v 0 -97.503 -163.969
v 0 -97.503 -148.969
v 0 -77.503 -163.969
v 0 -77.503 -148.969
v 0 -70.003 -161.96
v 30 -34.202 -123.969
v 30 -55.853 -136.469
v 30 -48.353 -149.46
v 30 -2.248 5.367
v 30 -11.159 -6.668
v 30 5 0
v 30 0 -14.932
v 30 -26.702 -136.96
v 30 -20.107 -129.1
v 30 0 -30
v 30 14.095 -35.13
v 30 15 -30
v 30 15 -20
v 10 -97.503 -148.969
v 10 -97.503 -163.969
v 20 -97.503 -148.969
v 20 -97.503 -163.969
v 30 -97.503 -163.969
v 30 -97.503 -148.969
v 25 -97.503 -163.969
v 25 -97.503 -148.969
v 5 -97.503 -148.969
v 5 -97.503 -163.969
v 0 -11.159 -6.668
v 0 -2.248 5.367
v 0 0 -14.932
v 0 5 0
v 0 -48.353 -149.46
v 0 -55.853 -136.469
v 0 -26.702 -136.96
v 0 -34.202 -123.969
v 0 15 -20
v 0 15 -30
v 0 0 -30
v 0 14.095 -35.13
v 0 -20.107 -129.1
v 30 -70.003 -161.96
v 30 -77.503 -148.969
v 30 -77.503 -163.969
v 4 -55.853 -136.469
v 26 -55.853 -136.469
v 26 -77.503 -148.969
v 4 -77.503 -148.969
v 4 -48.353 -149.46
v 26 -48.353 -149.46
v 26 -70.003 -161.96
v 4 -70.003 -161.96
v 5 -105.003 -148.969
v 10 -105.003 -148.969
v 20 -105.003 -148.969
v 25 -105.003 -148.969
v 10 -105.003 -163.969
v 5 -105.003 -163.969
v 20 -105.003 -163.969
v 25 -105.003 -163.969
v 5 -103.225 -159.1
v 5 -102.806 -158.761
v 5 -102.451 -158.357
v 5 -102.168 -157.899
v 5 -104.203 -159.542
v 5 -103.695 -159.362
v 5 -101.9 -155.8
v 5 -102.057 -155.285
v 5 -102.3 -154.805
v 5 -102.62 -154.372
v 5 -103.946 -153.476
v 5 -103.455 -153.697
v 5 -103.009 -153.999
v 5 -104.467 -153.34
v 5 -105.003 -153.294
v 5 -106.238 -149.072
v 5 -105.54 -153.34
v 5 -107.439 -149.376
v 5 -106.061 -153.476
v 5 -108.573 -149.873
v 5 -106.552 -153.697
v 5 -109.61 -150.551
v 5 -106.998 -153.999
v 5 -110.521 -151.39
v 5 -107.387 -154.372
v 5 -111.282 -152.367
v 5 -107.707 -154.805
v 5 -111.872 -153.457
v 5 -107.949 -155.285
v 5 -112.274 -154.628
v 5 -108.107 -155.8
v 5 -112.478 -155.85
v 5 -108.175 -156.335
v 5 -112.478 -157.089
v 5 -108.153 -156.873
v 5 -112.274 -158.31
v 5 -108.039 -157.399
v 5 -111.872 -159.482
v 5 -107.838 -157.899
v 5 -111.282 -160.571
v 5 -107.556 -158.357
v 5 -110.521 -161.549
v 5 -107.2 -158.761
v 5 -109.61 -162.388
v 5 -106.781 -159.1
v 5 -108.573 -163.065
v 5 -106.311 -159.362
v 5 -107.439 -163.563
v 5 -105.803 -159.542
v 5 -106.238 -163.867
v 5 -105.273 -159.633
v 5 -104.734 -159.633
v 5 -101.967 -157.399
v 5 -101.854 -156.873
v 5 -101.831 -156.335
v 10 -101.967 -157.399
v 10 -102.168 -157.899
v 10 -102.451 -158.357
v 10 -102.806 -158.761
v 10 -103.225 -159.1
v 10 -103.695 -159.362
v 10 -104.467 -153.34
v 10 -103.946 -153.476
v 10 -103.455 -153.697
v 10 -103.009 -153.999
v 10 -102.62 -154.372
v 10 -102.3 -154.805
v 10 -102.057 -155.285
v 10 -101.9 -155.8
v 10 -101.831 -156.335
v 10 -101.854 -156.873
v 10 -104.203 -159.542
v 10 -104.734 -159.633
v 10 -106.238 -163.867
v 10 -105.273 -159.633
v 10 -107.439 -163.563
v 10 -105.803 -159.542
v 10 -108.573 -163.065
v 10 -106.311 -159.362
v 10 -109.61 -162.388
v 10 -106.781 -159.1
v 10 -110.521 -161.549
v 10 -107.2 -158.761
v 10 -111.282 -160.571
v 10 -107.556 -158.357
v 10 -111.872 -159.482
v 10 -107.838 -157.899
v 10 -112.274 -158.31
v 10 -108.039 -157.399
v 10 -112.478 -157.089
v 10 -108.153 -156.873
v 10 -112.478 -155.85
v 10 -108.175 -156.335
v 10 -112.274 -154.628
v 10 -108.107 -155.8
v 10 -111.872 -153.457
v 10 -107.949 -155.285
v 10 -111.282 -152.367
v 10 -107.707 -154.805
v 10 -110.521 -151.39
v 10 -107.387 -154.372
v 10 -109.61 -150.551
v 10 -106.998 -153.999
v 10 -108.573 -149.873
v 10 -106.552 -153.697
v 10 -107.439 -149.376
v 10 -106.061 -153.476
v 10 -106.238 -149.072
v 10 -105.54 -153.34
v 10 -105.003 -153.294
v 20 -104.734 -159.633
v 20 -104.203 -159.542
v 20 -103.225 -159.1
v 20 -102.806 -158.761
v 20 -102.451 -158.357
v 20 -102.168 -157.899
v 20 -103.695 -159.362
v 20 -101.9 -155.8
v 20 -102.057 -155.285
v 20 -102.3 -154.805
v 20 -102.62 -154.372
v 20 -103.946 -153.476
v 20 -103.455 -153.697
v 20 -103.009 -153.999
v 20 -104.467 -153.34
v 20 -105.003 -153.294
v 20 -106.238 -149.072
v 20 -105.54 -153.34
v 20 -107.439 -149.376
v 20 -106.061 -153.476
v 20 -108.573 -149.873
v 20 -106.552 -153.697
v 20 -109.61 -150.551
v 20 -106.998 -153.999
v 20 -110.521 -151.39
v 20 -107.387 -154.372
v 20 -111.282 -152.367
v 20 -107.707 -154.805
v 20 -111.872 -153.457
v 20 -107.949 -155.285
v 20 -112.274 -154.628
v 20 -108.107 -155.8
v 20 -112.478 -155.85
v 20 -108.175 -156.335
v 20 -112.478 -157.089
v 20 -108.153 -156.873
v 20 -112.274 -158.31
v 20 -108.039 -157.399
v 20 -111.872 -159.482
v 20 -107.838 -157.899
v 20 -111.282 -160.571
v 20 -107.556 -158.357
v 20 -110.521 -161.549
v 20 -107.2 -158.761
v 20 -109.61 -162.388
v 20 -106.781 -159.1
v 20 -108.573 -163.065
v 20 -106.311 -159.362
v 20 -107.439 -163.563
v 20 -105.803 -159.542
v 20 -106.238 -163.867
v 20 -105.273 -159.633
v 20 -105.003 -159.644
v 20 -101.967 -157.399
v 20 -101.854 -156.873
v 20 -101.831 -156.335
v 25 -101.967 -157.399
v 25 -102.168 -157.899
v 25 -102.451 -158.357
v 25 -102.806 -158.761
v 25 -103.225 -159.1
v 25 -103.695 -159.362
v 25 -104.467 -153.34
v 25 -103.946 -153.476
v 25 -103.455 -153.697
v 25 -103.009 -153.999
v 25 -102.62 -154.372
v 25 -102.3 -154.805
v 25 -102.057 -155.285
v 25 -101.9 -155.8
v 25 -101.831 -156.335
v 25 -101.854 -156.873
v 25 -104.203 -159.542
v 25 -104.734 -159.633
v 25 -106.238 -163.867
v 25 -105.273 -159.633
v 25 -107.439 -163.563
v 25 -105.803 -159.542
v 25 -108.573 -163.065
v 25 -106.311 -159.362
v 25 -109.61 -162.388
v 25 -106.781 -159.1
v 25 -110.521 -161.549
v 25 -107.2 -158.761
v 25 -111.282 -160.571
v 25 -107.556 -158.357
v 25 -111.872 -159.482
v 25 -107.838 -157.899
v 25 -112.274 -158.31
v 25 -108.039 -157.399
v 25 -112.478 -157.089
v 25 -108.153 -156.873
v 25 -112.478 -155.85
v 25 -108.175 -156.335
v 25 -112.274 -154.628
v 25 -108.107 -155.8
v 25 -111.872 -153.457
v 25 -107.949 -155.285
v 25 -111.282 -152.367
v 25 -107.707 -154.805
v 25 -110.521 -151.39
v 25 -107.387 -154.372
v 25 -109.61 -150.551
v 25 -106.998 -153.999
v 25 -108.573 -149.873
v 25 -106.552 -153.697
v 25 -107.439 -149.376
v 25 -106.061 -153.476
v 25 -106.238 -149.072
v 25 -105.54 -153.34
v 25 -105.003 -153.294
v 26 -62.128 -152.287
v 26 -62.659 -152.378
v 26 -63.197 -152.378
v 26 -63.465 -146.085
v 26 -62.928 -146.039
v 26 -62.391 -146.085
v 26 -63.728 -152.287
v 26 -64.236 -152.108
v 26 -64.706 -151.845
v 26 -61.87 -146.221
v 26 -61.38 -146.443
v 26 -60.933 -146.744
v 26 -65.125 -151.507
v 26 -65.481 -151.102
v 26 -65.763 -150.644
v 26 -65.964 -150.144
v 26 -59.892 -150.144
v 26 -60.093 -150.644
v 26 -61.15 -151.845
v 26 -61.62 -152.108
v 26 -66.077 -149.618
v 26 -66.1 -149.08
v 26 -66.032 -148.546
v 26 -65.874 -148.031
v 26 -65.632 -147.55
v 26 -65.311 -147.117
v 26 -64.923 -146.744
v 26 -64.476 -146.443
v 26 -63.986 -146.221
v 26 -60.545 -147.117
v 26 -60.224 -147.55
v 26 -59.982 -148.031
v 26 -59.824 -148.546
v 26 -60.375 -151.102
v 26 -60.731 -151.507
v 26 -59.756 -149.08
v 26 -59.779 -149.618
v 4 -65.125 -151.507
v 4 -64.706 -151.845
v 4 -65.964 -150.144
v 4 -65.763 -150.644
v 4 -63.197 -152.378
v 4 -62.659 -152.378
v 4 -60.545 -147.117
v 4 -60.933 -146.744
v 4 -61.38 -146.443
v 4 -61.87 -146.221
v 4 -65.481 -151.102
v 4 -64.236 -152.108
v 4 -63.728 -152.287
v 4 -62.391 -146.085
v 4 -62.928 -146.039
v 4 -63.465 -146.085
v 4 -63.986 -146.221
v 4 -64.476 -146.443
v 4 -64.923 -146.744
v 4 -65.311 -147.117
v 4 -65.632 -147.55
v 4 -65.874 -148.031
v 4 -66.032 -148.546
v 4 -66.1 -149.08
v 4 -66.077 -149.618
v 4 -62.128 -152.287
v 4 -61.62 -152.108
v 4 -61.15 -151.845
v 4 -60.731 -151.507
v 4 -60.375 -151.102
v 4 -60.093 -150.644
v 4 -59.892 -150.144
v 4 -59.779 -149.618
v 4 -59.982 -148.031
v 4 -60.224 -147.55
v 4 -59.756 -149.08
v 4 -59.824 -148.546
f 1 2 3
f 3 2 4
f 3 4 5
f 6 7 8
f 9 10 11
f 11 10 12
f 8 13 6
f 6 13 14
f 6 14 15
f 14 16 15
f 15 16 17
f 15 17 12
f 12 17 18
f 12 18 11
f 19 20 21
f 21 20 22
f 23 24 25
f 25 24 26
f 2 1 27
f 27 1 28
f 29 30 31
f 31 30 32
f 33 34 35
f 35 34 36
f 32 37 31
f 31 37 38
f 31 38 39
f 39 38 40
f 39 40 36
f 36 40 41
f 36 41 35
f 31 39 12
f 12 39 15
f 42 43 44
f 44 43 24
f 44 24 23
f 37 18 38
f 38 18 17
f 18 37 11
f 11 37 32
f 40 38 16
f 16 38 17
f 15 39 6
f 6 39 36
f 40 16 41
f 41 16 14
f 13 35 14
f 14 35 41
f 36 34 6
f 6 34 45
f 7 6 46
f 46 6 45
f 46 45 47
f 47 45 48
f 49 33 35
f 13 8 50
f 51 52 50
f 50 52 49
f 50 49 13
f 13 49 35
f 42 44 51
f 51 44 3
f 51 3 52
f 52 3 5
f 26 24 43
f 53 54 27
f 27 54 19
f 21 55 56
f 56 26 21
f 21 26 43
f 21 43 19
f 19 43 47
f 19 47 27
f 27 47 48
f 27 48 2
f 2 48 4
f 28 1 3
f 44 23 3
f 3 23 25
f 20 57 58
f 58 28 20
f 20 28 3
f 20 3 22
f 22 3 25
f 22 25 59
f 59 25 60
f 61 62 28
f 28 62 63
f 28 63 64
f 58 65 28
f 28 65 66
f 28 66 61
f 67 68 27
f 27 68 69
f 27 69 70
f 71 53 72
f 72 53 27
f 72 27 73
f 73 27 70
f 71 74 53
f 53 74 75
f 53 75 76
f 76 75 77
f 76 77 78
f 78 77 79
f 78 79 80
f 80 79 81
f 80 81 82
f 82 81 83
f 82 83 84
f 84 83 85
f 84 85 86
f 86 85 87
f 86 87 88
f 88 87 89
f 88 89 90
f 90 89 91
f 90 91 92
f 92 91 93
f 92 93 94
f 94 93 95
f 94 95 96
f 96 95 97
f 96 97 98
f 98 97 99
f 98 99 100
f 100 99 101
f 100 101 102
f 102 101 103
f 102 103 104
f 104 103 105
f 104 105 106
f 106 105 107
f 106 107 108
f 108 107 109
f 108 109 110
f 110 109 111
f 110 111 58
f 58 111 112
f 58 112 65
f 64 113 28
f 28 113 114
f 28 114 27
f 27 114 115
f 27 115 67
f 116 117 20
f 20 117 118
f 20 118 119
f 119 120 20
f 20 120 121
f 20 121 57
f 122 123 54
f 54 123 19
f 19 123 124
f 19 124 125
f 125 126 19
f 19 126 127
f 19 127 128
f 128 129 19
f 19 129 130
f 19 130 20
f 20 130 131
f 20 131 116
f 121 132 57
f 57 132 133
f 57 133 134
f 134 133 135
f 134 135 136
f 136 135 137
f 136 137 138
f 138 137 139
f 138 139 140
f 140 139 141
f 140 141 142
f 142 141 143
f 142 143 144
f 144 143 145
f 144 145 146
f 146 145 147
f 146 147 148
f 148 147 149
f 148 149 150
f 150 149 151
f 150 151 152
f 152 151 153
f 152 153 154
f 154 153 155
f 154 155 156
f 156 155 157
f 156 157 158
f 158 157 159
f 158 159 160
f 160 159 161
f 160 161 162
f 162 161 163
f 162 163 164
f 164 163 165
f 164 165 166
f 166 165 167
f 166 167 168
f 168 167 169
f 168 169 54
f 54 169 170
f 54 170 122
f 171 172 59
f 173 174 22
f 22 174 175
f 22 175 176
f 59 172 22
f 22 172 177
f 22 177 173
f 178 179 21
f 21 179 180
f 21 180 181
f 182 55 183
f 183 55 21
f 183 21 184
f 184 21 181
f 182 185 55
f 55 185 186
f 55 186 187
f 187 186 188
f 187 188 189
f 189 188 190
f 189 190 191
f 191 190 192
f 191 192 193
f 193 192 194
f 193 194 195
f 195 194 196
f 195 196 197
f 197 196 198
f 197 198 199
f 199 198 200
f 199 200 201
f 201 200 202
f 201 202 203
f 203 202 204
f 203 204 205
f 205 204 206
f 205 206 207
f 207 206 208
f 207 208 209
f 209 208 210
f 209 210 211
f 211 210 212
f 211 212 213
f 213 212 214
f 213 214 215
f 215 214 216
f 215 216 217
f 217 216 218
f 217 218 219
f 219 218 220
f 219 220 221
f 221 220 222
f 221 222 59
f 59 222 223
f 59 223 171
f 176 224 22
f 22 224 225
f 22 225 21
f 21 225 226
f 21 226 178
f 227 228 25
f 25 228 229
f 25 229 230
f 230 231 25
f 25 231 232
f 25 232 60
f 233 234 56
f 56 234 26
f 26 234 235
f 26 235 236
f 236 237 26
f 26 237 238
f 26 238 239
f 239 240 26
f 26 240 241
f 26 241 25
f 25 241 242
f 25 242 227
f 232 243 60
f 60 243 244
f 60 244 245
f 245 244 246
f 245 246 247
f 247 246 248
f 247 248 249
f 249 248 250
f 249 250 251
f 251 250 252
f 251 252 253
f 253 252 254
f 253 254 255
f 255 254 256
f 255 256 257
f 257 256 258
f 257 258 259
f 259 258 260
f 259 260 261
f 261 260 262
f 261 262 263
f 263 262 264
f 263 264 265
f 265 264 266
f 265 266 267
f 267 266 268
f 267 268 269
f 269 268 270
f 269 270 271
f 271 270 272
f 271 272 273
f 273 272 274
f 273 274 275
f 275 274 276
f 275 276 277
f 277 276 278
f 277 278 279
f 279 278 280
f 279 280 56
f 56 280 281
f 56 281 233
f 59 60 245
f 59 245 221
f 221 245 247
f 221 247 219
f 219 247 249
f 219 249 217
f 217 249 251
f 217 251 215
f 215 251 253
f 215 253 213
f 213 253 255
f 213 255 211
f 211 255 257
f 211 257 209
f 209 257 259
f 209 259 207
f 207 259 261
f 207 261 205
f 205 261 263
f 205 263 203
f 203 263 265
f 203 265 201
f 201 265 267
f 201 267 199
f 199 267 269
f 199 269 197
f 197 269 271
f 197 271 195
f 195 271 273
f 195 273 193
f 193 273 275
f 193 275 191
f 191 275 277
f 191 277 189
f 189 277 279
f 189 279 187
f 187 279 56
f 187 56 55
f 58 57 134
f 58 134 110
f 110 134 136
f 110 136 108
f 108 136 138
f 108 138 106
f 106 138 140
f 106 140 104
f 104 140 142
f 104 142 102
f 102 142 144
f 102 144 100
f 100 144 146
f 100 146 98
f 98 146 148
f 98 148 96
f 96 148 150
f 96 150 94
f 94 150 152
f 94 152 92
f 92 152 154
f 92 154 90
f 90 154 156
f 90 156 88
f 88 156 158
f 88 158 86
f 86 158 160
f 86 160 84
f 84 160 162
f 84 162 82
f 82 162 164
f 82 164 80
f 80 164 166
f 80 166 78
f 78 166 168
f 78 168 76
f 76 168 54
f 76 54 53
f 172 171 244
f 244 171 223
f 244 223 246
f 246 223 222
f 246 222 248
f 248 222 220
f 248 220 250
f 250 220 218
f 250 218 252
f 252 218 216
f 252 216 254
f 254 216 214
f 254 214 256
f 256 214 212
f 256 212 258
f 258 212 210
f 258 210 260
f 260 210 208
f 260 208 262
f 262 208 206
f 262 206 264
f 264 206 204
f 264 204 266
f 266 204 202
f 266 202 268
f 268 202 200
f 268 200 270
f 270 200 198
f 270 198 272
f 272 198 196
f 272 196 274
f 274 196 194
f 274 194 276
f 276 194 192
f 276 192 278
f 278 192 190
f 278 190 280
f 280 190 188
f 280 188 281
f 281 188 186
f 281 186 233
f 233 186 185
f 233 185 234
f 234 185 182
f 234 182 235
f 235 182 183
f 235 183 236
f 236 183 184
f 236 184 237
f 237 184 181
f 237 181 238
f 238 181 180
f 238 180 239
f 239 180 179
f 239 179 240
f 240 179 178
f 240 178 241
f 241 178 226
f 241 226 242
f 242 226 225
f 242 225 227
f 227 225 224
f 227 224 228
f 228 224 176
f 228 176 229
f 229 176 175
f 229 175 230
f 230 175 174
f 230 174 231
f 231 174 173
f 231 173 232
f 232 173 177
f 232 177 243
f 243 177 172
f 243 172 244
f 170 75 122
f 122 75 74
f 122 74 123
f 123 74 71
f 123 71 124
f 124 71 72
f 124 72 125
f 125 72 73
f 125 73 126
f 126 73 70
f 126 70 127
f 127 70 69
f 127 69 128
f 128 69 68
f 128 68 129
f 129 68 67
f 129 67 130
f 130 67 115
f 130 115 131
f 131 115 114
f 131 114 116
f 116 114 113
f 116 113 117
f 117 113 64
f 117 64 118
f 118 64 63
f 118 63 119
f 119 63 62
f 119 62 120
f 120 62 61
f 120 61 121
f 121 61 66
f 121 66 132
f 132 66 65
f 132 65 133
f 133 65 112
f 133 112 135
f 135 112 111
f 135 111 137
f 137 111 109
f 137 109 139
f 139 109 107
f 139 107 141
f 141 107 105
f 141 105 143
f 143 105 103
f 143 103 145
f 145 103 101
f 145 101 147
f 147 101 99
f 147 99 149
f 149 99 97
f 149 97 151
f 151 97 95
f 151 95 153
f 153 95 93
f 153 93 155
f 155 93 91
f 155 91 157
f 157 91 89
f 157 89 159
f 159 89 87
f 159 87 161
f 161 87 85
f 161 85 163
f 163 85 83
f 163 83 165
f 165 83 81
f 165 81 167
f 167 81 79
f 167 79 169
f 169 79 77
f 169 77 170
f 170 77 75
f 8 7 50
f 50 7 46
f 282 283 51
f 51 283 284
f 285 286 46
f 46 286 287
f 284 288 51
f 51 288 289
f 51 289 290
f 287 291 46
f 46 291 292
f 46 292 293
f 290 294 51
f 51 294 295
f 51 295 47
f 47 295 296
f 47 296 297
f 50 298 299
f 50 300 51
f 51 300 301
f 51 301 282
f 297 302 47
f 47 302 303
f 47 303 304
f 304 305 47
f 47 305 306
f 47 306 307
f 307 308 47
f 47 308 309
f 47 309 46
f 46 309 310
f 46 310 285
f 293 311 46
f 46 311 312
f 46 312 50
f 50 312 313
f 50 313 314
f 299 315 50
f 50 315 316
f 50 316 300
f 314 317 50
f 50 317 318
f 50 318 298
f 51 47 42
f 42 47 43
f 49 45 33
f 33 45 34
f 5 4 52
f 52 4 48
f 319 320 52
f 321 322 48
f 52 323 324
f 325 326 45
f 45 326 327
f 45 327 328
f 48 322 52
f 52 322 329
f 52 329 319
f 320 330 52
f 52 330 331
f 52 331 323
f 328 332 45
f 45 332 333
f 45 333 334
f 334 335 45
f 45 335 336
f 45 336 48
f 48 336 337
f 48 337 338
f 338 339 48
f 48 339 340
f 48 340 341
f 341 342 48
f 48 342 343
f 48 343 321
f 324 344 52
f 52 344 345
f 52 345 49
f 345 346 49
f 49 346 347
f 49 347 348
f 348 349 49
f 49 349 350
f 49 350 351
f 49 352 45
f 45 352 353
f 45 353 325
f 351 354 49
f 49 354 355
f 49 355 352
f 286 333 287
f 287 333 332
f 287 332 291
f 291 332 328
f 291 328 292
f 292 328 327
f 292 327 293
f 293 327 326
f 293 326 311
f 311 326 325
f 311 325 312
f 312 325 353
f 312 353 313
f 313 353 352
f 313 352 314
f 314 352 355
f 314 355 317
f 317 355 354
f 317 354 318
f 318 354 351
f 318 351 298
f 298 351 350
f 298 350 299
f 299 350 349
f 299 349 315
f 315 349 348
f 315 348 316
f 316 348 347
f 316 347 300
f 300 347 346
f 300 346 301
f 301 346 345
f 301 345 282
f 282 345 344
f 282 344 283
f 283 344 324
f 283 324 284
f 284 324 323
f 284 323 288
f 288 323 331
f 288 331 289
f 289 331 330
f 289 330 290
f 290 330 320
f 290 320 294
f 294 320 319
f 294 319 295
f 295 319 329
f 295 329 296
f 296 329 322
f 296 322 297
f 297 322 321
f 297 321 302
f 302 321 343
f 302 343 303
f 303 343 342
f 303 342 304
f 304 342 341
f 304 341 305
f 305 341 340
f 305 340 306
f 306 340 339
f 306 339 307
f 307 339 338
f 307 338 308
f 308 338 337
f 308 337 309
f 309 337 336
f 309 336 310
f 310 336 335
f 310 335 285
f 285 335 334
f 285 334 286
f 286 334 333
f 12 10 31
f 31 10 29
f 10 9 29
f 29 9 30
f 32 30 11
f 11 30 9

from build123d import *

# Parameters (mm, degrees)
SKETCH2_W                        = 30
SKETCH2_H                        = 15
BOSS_EXTRUDE1_DEPTH              = 10
BOUNDARY1_DEPTH                  = 30
BOSS_EXTRUDE2_DEPTH              = 30
SKETCH4_W                        = 30
SKETCH4_H                        = 15
BOSS_EXTRUDE3_DEPTH              = 100
SKETCH6_W                        = 18
SKETCH6_H                        = 15
BOSS_EXTRUDE4_DEPTH              = 9
BOSS_EXTRUDE5_DEPTH              = 18
CUT_EXTRUDE1_REACH               = 151.344
SKETCH8_R                        = 3
CUT_EXTRUDE2_REACH               = 139.38
SKETCH11_W                       = 30
SKETCH11_H                       = 15
SKETCH12_W                       = 30
SKETCH12_H                       = 15
BOSS_EXTRUDE7_DEPTH              = 50
BOSS_EXTRUDE8_DEPTH              = 30
SKETCH14_W                       = 30
SKETCH14_H                       = 15
BOSS_EXTRUDE10_DEPTH             = 20
BOSS_EXTRUDE11_DEPTH             = 30
SKETCH15_W                       = 5
SKETCH15_H                       = 15
BOSS_EXTRUDE12_DEPTH             = 7.5
SKETCH16_W                       = 5
SKETCH16_H                       = 7.5
REVOLVE1_ANGLE                   = 180
CUT_EXTRUDE3_REACH               = 202.419
SKETCH17_R                       = 3.175
SKETCH18_W                       = 4
SKETCH18_H                       = 25
CUT_EXTRUDE4_DEPTH               = 191.993712728
SKETCH20_R                       = 3.175
CUT_EXTRUDE5_DEPTH               = 201.546523118
SKETCH21_W                       = 30
SKETCH21_H                       = 12
BOSS_EXTRUDE13_DEPTH             = 5
BOSS_EXTRUDE13_DIRECTION_2_REACH = 203.104
SKETCH22_W                       = 30
SKETCH22_H                       = 2.975516747
BOSS_EXTRUDE14_DEPTH             = 5
BOSS_EXTRUDE14_DIRECTION_2_REACH = 203.104


# Read off the part's stored shape, not the designer's step: Boundary1
with BuildPart() as part:
    # Sketch2 → Boss-Extrude1 (new body)
    with BuildSketch(Plane.XY.offset(-30)):
        with Locations((15, 7.5)):
            Rectangle(SKETCH2_W, SKETCH2_H)
    extrude(amount=BOSS_EXTRUDE1_DEPTH)

    # Boundary1 outline → Boundary1 (add)
    with BuildSketch(Plane.YZ):
        Polygon((0, 0), (0, -20), (15, -20), (5, 0), align=None)
    extrude(amount=BOUNDARY1_DEPTH)

    # 3DSketch3 → Boss-Extrude2 (add)
    with BuildSketch(Plane(origin=(0, 15, -30), x_dir=(0, -1, 0), z_dir=(1, 0, 0))):
        Polygon((0, 0), (0.904610688, 5.13030215), (15, 0), align=None)
    extrude(amount=BOSS_EXTRUDE2_DEPTH)

    # Sketch4 → Boss-Extrude3 (add)
    with BuildSketch(Plane(origin=(0, -9.641814145, -26.490666647), x_dir=(1, 0, 0), z_dir=(0, 0.34202014332566943, 0.9396926207859081))):
        with Locations((15, 17.7606043)):
            Rectangle(SKETCH4_W, SKETCH4_H)
    extrude(amount=-BOSS_EXTRUDE3_DEPTH)

    # Sketch6 → Boss-Extrude4 (add)
    with BuildSketch(Plane(origin=(0, -43.843828478, -120.459928725), x_dir=(-1, 0, 0), z_dir=(0, -0.3420201433256693, -0.9396926207859083))):
        with Locations((-15, 17.7606043)):
            Rectangle(SKETCH6_W, SKETCH6_H)
    extrude(amount=BOSS_EXTRUDE4_DEPTH)

    # Sketch7 → Boss-Extrude5 (add)
    with BuildSketch(Plane.ZY.offset(-6)):
        with BuildLine():
            Line((-137.556797816, -23.184806311), (-132.426495666, -37.280195622))
            ThreePointArc((-132.426495666, -37.280195622), (-142.039341397, -32.797652042), (-137.556797816, -23.184806311))
        make_face()
    extrude(amount=-BOSS_EXTRUDE5_DEPTH)

    # Sketch8 → Cut-Extrude1 (cut, up to next)
    with BuildSketch(Plane.ZY.offset(-6), mode=Mode.PRIVATE) as cut_extrude1_sk1:
        with Locations((-134.991646741, -30.232500967)):
            Circle(SKETCH8_R)
    cut_extrude1_tool1 = extrude(cut_extrude1_sk1.sketch, amount=-CUT_EXTRUDE1_REACH, mode=Mode.PRIVATE) & part.part
    add(cut_extrude1_tool1.solids().sort_by_distance((6, -30.232501, -134.991647))[0], mode=Mode.SUBTRACT)

    # Sketch11 → Cut-Extrude2 (cut, up to next)
    with BuildSketch(Plane(origin=(0, -43.843828478, -120.459928725), x_dir=(-1, 0, 0), z_dir=(0, -0.3420201433256693, -0.9396926207859083)), mode=Mode.PRIVATE) as cut_extrude2_sk1:
        with Locations((-15, 17.7606043)):
            Rectangle(SKETCH11_W, SKETCH11_H)
    cut_extrude2_tool1 = extrude(cut_extrude2_sk1.sketch, amount=CUT_EXTRUDE2_REACH, mode=Mode.PRIVATE) & part.part
    add(cut_extrude2_tool1.solids().sort_by_distance((15, -27.15432, -126.534413))[0], mode=Mode.SUBTRACT)



with BuildPart() as body_2:
    # Sketch12 → Boss-Extrude7 (new body)
    with BuildSketch(Plane(origin=(0, -79.331775874, -45.802222156), x_dir=(1, 0, 0), z_dir=(0, -0.8660254037844397, -0.49999999999999833))):
        with Locations((15, -97.759523082)):
            Rectangle(SKETCH12_W, SKETCH12_H)
    extrude(amount=BOSS_EXTRUDE7_DEPTH)


with BuildPart() as part_1:
    add(part.part)

    add(body_2.part)  # Boss-Extrude8 merges body 2
    # 3DSketch4 → Boss-Extrude8 (add)
    with BuildSketch(Plane(origin=(0, -20.106625021, -129.099564228), x_dir=(0, -0.9396926207859082, 0.3420201433256692), z_dir=(1, 0, 0))):
        Polygon((0, 0), (3.509333353, 9.641814145), (15, 0), align=None)
    extrude(amount=BOSS_EXTRUDE8_DEPTH)



with BuildPart() as body_2_2:
    # Sketch14 → Boss-Extrude10 (new body)
    with BuildSketch(Plane(origin=(0, -77.503284522, 0), x_dir=(-1, 0, 0), z_dir=(0, -1, 0))):
        with Locations((-15, 156.469262079)):
            Rectangle(SKETCH14_W, SKETCH14_H)
    extrude(amount=BOSS_EXTRUDE10_DEPTH)


with BuildPart() as part_2:
    add(part_1.part)

    add(body_2_2.part)  # Boss-Extrude11 merges body 2 2
    # 3DSketch5 → Boss-Extrude11 (add)
    with BuildSketch(Plane(origin=(0, -77.503284522, -163.969262079), x_dir=(0, 0, 1), z_dir=(-1, 0, 0))):
        Polygon((0, 0), (15, 0), (2.009618943, 7.5), align=None)
    extrude(amount=-BOSS_EXTRUDE11_DEPTH)

    # Sketch15 → Boss-Extrude12 (add)
    with BuildSketch(Plane.XZ.offset(97.503284522)):
        with Locations((7.5, -156.469262079)):
            Rectangle(SKETCH15_W, SKETCH15_H)
        with Locations((22.5, -156.469262079)):
            Rectangle(SKETCH15_W, SKETCH15_H)
    extrude(amount=BOSS_EXTRUDE12_DEPTH)

    # Sketch16 → Revolve1 (revolve)
    with BuildSketch(Plane.XZ.offset(105.003284522)):
        with Locations((22.5, -160.219262079)):
            Rectangle(SKETCH16_W, SKETCH16_H)
        with Locations((7.5, -160.219262079)):
            Rectangle(SKETCH16_W, SKETCH16_H)
    revolve(axis=Axis((25, -105.003284522, -156.469262079), (-1, 0, 0)), revolution_arc=REVOLVE1_ANGLE)

    # Cut-Extrude3: up to this face of the body (flat: up to its plane)
    cut_extrude3_end = Plane(part_2.part.faces().sort_by_distance((25, -104.30316058, -156.469262079))[0])
    # Sketch17 → Cut-Extrude3 (cut, up to the picked face)
    with BuildSketch(Plane.ZY.offset(-5), mode=Mode.PRIVATE) as cut_extrude3_sk1:
        with Locations((-156.469262079, -105.003284522)):
            Circle(SKETCH17_R)
    cut_extrude3_tool1 = split(extrude(cut_extrude3_sk1.sketch, amount=-CUT_EXTRUDE3_REACH, mode=Mode.PRIVATE), bisect_by=cut_extrude3_end, keep=Keep.BOTH, mode=Mode.PRIVATE)
    add(cut_extrude3_tool1.solids().sort_by(Axis((5, -105.003285, -156.469262), (1, 0, 0)))[0], mode=Mode.SUBTRACT)

    # Sketch18 → Cut-Extrude4 (cut, through all)
    with BuildSketch(Plane(origin=(0, 52.629761541, -91.157420979), x_dir=(-1, 0, 0), z_dir=(0, 0.4999999999999983, -0.8660254037844398))):
        with Locations((-2, -129.104444312)):
            Rectangle(SKETCH18_W, SKETCH18_H)
        with Locations((-28, -129.104444312)):
            Rectangle(SKETCH18_W, SKETCH18_H)
    extrude(amount=-CUT_EXTRUDE4_DEPTH, mode=Mode.SUBTRACT)

    # Sketch20 → Cut-Extrude5 (cut, through all)
    with BuildSketch(Plane.ZY.offset(-4)):
        with Locations((-149.214452607, -62.927966974)):
            Circle(SKETCH20_R)
    extrude(amount=-CUT_EXTRUDE5_DEPTH, mode=Mode.SUBTRACT)

    # Sketch21 → Boss-Extrude13 (add)
    with BuildSketch(Plane(origin=(0, 0, 0), x_dir=(-1, 0, 0), z_dir=(0, -0.8036491793257791, 0.5951033494856183))):
        with Locations((-15, 6)):
            Rectangle(SKETCH21_W, SKETCH21_H)
    extrude(amount=BOSS_EXTRUDE13_DEPTH)

    # Sketch21 → Boss-Extrude13 direction 2 (add, up to next)
    with BuildSketch(Plane(origin=(0, 0, 0), x_dir=(-1, 0, 0), z_dir=(0, -0.8036491793257791, 0.5951033494856183)), mode=Mode.PRIVATE) as boss_extrude13_direction_2_sk1:
        with Locations((-15, 6)):
            Rectangle(SKETCH21_W, SKETCH21_H)
    boss_extrude13_direction_2_tool1 = extrude(boss_extrude13_direction_2_sk1.sketch, amount=-BOSS_EXTRUDE13_DIRECTION_2_REACH, mode=Mode.PRIVATE) - part_2.part
    add(boss_extrude13_direction_2_tool1.solids().sort_by_distance((15, -3.57062, -4.821895))[0])

    # Sketch22 → Boss-Extrude14 (add)
    with BuildSketch(Plane(origin=(0, 0, 0), x_dir=(-1, 0, 0), z_dir=(0, -0.8036491793257791, 0.5951033494856183))):
        with Locations((-15, -1.487758374)):
            Rectangle(SKETCH22_W, SKETCH22_H)
    extrude(amount=BOSS_EXTRUDE14_DEPTH)

    # Boss-Extrude14 direction 2: up to this plane
    boss_extrude14_direction_2_end = Plane(origin=(0, 5, 0), z_dir=(0, 0.894427190999916, 0.447213595499958))
    # Sketch22 → Boss-Extrude14 direction 2 (add, up to the surface)
    with BuildSketch(Plane(origin=(0, 0, 0), x_dir=(-1, 0, 0), z_dir=(0, -0.8036491793257791, 0.5951033494856183)), mode=Mode.PRIVATE) as boss_extrude14_direction_2_sk1:
        with Locations((-15, -1.487758374)):
            Rectangle(SKETCH22_W, SKETCH22_H)
    boss_extrude14_direction_2_tool1 = split(extrude(boss_extrude14_direction_2_sk1.sketch, amount=-BOSS_EXTRUDE14_DIRECTION_2_REACH, mode=Mode.PRIVATE), bisect_by=boss_extrude14_direction_2_end, keep=Keep.BOTH, mode=Mode.PRIVATE)
    add(boss_extrude14_direction_2_tool1.solids().sort_by_distance((15, 0.88537, 1.195636))[0])


solid = part_2.part
